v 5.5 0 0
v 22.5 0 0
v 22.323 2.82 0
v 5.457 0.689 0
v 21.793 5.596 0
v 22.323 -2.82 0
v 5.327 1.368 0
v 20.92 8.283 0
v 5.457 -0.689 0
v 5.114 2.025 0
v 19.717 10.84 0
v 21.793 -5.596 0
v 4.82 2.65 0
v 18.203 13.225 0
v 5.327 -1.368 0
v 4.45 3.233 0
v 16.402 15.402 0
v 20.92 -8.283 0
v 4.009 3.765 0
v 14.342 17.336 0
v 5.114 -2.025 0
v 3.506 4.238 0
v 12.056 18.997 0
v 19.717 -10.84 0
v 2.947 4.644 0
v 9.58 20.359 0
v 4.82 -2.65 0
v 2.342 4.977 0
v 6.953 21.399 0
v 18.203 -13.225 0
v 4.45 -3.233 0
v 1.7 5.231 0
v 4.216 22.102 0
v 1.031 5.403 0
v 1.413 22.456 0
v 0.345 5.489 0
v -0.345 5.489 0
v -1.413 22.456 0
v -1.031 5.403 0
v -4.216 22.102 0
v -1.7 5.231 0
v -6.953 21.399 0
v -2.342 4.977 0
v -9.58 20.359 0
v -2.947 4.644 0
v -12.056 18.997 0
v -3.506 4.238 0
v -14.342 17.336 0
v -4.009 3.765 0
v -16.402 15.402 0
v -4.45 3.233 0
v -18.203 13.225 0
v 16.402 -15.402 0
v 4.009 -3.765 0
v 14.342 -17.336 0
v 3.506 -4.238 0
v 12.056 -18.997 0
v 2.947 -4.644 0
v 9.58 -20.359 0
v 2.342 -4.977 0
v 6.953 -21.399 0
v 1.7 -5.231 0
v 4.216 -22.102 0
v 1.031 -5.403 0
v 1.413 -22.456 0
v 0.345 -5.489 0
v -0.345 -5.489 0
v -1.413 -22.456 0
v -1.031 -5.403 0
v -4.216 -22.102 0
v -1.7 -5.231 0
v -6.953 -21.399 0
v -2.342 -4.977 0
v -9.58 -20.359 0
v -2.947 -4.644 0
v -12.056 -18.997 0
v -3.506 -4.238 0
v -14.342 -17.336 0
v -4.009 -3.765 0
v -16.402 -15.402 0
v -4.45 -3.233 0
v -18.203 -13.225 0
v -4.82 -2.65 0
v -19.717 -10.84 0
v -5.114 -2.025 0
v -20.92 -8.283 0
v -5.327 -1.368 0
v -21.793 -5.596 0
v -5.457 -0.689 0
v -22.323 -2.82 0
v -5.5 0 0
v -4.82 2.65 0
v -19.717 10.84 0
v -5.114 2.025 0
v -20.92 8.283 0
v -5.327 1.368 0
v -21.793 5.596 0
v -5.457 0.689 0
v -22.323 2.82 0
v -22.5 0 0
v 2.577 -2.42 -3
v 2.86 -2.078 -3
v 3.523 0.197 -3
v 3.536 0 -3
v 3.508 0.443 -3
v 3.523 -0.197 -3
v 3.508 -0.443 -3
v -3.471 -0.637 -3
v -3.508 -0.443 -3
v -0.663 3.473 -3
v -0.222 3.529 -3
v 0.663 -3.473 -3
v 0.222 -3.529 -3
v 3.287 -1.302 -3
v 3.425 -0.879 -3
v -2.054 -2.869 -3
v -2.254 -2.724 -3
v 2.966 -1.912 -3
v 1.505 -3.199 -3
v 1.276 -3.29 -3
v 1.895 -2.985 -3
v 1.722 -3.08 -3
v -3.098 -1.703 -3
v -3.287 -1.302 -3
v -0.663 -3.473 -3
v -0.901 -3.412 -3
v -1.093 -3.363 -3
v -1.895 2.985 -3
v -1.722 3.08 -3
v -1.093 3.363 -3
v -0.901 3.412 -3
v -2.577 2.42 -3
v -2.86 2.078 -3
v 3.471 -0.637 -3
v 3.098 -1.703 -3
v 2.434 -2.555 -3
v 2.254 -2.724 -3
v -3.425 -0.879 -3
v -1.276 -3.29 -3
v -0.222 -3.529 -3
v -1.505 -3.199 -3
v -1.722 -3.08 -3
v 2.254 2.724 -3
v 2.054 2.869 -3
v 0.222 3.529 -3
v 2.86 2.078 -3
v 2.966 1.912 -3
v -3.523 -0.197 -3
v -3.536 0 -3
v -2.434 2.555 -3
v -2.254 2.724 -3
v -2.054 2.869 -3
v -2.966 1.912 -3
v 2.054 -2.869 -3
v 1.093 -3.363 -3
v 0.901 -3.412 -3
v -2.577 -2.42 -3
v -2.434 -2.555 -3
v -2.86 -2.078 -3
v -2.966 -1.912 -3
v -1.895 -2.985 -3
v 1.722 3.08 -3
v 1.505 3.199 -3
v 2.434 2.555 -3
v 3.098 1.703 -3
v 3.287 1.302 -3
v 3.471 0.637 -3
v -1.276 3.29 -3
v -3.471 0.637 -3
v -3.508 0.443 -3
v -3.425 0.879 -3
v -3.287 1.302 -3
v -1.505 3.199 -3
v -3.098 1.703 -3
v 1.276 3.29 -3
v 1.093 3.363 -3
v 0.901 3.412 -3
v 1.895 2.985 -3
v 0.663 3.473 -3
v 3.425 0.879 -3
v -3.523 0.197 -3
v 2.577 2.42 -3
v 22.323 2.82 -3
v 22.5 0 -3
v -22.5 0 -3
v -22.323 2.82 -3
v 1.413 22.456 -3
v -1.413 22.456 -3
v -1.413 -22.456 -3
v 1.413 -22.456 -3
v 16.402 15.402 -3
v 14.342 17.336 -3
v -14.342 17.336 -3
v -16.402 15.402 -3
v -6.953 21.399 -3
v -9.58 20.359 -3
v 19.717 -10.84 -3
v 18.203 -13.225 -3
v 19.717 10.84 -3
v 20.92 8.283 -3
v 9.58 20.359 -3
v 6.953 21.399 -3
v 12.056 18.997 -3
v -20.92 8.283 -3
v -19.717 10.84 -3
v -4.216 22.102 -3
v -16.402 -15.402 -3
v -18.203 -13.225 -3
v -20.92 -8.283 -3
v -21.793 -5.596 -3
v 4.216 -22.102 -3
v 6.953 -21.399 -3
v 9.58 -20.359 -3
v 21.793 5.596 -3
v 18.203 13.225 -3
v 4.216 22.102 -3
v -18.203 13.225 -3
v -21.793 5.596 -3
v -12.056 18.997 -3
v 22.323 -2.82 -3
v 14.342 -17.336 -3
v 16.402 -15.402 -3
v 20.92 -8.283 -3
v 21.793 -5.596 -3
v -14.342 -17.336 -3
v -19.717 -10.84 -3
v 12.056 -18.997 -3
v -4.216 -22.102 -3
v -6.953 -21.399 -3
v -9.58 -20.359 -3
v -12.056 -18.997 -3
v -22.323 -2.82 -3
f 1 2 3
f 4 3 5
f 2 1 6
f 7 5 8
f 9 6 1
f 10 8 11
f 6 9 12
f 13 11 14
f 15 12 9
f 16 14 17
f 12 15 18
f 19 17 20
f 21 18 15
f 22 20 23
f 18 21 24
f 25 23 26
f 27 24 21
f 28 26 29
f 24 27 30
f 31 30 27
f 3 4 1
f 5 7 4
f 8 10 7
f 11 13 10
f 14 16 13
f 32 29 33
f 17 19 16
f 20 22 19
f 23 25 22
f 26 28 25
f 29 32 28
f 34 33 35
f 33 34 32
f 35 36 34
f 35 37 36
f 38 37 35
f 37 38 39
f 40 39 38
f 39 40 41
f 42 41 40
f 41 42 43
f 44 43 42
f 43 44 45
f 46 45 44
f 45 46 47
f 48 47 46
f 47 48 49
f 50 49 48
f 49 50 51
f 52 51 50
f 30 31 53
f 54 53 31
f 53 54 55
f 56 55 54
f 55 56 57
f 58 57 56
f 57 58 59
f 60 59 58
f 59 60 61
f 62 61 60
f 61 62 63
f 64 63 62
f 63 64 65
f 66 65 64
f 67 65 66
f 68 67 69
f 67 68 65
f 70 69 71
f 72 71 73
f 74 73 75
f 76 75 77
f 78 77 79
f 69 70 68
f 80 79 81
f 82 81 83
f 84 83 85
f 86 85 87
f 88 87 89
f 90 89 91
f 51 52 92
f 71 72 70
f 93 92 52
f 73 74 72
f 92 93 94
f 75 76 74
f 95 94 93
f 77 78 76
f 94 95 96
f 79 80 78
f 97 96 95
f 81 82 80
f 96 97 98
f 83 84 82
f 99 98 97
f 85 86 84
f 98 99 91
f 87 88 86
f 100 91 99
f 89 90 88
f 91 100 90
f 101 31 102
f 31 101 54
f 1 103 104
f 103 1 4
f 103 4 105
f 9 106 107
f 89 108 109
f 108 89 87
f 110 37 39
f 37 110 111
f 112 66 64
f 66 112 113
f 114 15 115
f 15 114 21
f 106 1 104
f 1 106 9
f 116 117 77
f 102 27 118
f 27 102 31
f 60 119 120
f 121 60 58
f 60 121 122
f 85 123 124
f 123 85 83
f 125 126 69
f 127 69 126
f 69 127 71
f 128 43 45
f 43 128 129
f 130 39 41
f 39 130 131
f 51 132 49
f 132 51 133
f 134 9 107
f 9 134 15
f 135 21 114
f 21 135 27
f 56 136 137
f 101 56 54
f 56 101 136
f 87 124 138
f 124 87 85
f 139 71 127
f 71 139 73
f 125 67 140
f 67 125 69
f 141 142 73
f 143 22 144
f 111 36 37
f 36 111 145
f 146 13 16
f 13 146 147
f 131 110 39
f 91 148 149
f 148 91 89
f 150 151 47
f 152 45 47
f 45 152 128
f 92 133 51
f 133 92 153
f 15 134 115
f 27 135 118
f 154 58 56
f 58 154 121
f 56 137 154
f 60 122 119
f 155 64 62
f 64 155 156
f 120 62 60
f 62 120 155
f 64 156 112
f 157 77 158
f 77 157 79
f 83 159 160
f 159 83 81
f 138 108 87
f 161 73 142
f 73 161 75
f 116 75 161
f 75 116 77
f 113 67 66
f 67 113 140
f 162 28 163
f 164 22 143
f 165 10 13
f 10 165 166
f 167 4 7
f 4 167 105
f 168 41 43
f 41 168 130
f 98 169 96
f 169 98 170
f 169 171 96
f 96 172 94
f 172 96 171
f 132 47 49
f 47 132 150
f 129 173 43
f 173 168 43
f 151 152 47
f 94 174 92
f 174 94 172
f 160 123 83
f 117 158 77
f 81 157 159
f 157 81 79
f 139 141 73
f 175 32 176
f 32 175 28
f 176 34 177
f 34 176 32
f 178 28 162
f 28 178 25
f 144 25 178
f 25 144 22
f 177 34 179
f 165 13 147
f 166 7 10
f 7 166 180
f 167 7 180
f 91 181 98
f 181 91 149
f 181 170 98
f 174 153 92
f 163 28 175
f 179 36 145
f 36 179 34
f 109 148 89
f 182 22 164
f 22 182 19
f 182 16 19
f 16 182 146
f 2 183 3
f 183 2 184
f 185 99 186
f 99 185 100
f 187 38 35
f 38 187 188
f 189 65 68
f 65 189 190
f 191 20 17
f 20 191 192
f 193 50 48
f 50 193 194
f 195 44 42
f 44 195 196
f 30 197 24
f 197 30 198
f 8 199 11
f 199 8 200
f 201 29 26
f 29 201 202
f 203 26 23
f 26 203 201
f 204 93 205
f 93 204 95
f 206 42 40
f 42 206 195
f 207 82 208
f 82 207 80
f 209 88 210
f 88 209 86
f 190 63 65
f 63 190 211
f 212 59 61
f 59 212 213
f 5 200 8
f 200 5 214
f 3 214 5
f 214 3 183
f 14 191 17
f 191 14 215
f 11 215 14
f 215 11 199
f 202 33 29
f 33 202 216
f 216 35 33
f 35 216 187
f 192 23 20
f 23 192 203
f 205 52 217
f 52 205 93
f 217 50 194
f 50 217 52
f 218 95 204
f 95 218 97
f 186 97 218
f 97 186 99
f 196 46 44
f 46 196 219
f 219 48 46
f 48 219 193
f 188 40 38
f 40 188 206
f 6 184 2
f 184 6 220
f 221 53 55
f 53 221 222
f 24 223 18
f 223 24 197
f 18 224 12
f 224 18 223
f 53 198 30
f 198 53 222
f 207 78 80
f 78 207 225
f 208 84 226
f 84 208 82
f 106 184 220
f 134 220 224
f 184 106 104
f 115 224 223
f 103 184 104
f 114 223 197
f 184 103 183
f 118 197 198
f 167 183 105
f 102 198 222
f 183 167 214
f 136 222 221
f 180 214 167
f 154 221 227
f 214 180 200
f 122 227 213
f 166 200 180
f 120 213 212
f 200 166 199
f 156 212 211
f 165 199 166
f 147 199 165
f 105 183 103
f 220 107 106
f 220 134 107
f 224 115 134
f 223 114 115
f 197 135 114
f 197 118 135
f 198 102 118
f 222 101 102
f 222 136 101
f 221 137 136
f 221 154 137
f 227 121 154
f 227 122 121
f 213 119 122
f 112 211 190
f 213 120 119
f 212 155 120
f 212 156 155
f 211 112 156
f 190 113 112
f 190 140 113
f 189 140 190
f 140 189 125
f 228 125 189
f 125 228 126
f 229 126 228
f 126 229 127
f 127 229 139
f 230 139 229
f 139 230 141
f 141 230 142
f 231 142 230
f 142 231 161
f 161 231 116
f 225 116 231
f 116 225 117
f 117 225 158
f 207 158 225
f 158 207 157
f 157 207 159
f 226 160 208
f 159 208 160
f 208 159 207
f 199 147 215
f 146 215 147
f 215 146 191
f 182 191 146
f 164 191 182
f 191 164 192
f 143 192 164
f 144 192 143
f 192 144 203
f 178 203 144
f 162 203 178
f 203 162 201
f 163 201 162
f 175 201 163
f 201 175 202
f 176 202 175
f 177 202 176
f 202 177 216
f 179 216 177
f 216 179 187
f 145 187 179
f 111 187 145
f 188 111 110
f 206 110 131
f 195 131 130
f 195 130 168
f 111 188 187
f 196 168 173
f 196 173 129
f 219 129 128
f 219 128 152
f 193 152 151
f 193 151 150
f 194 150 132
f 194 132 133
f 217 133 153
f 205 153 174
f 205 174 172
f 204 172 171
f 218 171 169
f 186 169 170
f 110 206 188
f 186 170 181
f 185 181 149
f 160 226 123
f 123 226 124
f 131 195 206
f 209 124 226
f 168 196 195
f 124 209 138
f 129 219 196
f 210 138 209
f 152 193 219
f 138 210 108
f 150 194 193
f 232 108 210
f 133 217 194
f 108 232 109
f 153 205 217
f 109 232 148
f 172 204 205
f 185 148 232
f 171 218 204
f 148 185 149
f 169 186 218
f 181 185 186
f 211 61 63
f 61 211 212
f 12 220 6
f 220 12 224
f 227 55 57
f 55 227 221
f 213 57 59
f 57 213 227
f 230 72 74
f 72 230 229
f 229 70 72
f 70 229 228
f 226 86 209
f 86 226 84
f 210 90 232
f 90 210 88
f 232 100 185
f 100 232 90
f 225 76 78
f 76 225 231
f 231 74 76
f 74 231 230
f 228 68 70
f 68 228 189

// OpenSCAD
$fn = 50;


difference() {
	union() {
		translate(v = [0, 0, -3.0000000000]) {
			cylinder(h = 3, r = 22.5000000000);
		}
	}
	union() {
		translate(v = [0, 0, 0]) {
			rotate(a = [0, 0, 0]) {
				difference() {
					union() {
						translate(v = [0, 0, -3.0000000000]) {
							cylinder(h = 3, r = 2.2500000000);
						}
						translate(v = [0, 0, -4.2000000000]) {
							cylinder(h = 4.2000000000, r1 = 2.7500000000, r2 = 5.5000000000);
						}
						translate(v = [0, 0, -3.0000000000]) {
							cylinder(h = 3, r = 2.7500000000);
						}
						translate(v = [0, 0, -3.0000000000]) {
							cylinder(h = 3, r = 2.2500000000);
						}
					}
					union();
				}
			}
		}
	}
}
